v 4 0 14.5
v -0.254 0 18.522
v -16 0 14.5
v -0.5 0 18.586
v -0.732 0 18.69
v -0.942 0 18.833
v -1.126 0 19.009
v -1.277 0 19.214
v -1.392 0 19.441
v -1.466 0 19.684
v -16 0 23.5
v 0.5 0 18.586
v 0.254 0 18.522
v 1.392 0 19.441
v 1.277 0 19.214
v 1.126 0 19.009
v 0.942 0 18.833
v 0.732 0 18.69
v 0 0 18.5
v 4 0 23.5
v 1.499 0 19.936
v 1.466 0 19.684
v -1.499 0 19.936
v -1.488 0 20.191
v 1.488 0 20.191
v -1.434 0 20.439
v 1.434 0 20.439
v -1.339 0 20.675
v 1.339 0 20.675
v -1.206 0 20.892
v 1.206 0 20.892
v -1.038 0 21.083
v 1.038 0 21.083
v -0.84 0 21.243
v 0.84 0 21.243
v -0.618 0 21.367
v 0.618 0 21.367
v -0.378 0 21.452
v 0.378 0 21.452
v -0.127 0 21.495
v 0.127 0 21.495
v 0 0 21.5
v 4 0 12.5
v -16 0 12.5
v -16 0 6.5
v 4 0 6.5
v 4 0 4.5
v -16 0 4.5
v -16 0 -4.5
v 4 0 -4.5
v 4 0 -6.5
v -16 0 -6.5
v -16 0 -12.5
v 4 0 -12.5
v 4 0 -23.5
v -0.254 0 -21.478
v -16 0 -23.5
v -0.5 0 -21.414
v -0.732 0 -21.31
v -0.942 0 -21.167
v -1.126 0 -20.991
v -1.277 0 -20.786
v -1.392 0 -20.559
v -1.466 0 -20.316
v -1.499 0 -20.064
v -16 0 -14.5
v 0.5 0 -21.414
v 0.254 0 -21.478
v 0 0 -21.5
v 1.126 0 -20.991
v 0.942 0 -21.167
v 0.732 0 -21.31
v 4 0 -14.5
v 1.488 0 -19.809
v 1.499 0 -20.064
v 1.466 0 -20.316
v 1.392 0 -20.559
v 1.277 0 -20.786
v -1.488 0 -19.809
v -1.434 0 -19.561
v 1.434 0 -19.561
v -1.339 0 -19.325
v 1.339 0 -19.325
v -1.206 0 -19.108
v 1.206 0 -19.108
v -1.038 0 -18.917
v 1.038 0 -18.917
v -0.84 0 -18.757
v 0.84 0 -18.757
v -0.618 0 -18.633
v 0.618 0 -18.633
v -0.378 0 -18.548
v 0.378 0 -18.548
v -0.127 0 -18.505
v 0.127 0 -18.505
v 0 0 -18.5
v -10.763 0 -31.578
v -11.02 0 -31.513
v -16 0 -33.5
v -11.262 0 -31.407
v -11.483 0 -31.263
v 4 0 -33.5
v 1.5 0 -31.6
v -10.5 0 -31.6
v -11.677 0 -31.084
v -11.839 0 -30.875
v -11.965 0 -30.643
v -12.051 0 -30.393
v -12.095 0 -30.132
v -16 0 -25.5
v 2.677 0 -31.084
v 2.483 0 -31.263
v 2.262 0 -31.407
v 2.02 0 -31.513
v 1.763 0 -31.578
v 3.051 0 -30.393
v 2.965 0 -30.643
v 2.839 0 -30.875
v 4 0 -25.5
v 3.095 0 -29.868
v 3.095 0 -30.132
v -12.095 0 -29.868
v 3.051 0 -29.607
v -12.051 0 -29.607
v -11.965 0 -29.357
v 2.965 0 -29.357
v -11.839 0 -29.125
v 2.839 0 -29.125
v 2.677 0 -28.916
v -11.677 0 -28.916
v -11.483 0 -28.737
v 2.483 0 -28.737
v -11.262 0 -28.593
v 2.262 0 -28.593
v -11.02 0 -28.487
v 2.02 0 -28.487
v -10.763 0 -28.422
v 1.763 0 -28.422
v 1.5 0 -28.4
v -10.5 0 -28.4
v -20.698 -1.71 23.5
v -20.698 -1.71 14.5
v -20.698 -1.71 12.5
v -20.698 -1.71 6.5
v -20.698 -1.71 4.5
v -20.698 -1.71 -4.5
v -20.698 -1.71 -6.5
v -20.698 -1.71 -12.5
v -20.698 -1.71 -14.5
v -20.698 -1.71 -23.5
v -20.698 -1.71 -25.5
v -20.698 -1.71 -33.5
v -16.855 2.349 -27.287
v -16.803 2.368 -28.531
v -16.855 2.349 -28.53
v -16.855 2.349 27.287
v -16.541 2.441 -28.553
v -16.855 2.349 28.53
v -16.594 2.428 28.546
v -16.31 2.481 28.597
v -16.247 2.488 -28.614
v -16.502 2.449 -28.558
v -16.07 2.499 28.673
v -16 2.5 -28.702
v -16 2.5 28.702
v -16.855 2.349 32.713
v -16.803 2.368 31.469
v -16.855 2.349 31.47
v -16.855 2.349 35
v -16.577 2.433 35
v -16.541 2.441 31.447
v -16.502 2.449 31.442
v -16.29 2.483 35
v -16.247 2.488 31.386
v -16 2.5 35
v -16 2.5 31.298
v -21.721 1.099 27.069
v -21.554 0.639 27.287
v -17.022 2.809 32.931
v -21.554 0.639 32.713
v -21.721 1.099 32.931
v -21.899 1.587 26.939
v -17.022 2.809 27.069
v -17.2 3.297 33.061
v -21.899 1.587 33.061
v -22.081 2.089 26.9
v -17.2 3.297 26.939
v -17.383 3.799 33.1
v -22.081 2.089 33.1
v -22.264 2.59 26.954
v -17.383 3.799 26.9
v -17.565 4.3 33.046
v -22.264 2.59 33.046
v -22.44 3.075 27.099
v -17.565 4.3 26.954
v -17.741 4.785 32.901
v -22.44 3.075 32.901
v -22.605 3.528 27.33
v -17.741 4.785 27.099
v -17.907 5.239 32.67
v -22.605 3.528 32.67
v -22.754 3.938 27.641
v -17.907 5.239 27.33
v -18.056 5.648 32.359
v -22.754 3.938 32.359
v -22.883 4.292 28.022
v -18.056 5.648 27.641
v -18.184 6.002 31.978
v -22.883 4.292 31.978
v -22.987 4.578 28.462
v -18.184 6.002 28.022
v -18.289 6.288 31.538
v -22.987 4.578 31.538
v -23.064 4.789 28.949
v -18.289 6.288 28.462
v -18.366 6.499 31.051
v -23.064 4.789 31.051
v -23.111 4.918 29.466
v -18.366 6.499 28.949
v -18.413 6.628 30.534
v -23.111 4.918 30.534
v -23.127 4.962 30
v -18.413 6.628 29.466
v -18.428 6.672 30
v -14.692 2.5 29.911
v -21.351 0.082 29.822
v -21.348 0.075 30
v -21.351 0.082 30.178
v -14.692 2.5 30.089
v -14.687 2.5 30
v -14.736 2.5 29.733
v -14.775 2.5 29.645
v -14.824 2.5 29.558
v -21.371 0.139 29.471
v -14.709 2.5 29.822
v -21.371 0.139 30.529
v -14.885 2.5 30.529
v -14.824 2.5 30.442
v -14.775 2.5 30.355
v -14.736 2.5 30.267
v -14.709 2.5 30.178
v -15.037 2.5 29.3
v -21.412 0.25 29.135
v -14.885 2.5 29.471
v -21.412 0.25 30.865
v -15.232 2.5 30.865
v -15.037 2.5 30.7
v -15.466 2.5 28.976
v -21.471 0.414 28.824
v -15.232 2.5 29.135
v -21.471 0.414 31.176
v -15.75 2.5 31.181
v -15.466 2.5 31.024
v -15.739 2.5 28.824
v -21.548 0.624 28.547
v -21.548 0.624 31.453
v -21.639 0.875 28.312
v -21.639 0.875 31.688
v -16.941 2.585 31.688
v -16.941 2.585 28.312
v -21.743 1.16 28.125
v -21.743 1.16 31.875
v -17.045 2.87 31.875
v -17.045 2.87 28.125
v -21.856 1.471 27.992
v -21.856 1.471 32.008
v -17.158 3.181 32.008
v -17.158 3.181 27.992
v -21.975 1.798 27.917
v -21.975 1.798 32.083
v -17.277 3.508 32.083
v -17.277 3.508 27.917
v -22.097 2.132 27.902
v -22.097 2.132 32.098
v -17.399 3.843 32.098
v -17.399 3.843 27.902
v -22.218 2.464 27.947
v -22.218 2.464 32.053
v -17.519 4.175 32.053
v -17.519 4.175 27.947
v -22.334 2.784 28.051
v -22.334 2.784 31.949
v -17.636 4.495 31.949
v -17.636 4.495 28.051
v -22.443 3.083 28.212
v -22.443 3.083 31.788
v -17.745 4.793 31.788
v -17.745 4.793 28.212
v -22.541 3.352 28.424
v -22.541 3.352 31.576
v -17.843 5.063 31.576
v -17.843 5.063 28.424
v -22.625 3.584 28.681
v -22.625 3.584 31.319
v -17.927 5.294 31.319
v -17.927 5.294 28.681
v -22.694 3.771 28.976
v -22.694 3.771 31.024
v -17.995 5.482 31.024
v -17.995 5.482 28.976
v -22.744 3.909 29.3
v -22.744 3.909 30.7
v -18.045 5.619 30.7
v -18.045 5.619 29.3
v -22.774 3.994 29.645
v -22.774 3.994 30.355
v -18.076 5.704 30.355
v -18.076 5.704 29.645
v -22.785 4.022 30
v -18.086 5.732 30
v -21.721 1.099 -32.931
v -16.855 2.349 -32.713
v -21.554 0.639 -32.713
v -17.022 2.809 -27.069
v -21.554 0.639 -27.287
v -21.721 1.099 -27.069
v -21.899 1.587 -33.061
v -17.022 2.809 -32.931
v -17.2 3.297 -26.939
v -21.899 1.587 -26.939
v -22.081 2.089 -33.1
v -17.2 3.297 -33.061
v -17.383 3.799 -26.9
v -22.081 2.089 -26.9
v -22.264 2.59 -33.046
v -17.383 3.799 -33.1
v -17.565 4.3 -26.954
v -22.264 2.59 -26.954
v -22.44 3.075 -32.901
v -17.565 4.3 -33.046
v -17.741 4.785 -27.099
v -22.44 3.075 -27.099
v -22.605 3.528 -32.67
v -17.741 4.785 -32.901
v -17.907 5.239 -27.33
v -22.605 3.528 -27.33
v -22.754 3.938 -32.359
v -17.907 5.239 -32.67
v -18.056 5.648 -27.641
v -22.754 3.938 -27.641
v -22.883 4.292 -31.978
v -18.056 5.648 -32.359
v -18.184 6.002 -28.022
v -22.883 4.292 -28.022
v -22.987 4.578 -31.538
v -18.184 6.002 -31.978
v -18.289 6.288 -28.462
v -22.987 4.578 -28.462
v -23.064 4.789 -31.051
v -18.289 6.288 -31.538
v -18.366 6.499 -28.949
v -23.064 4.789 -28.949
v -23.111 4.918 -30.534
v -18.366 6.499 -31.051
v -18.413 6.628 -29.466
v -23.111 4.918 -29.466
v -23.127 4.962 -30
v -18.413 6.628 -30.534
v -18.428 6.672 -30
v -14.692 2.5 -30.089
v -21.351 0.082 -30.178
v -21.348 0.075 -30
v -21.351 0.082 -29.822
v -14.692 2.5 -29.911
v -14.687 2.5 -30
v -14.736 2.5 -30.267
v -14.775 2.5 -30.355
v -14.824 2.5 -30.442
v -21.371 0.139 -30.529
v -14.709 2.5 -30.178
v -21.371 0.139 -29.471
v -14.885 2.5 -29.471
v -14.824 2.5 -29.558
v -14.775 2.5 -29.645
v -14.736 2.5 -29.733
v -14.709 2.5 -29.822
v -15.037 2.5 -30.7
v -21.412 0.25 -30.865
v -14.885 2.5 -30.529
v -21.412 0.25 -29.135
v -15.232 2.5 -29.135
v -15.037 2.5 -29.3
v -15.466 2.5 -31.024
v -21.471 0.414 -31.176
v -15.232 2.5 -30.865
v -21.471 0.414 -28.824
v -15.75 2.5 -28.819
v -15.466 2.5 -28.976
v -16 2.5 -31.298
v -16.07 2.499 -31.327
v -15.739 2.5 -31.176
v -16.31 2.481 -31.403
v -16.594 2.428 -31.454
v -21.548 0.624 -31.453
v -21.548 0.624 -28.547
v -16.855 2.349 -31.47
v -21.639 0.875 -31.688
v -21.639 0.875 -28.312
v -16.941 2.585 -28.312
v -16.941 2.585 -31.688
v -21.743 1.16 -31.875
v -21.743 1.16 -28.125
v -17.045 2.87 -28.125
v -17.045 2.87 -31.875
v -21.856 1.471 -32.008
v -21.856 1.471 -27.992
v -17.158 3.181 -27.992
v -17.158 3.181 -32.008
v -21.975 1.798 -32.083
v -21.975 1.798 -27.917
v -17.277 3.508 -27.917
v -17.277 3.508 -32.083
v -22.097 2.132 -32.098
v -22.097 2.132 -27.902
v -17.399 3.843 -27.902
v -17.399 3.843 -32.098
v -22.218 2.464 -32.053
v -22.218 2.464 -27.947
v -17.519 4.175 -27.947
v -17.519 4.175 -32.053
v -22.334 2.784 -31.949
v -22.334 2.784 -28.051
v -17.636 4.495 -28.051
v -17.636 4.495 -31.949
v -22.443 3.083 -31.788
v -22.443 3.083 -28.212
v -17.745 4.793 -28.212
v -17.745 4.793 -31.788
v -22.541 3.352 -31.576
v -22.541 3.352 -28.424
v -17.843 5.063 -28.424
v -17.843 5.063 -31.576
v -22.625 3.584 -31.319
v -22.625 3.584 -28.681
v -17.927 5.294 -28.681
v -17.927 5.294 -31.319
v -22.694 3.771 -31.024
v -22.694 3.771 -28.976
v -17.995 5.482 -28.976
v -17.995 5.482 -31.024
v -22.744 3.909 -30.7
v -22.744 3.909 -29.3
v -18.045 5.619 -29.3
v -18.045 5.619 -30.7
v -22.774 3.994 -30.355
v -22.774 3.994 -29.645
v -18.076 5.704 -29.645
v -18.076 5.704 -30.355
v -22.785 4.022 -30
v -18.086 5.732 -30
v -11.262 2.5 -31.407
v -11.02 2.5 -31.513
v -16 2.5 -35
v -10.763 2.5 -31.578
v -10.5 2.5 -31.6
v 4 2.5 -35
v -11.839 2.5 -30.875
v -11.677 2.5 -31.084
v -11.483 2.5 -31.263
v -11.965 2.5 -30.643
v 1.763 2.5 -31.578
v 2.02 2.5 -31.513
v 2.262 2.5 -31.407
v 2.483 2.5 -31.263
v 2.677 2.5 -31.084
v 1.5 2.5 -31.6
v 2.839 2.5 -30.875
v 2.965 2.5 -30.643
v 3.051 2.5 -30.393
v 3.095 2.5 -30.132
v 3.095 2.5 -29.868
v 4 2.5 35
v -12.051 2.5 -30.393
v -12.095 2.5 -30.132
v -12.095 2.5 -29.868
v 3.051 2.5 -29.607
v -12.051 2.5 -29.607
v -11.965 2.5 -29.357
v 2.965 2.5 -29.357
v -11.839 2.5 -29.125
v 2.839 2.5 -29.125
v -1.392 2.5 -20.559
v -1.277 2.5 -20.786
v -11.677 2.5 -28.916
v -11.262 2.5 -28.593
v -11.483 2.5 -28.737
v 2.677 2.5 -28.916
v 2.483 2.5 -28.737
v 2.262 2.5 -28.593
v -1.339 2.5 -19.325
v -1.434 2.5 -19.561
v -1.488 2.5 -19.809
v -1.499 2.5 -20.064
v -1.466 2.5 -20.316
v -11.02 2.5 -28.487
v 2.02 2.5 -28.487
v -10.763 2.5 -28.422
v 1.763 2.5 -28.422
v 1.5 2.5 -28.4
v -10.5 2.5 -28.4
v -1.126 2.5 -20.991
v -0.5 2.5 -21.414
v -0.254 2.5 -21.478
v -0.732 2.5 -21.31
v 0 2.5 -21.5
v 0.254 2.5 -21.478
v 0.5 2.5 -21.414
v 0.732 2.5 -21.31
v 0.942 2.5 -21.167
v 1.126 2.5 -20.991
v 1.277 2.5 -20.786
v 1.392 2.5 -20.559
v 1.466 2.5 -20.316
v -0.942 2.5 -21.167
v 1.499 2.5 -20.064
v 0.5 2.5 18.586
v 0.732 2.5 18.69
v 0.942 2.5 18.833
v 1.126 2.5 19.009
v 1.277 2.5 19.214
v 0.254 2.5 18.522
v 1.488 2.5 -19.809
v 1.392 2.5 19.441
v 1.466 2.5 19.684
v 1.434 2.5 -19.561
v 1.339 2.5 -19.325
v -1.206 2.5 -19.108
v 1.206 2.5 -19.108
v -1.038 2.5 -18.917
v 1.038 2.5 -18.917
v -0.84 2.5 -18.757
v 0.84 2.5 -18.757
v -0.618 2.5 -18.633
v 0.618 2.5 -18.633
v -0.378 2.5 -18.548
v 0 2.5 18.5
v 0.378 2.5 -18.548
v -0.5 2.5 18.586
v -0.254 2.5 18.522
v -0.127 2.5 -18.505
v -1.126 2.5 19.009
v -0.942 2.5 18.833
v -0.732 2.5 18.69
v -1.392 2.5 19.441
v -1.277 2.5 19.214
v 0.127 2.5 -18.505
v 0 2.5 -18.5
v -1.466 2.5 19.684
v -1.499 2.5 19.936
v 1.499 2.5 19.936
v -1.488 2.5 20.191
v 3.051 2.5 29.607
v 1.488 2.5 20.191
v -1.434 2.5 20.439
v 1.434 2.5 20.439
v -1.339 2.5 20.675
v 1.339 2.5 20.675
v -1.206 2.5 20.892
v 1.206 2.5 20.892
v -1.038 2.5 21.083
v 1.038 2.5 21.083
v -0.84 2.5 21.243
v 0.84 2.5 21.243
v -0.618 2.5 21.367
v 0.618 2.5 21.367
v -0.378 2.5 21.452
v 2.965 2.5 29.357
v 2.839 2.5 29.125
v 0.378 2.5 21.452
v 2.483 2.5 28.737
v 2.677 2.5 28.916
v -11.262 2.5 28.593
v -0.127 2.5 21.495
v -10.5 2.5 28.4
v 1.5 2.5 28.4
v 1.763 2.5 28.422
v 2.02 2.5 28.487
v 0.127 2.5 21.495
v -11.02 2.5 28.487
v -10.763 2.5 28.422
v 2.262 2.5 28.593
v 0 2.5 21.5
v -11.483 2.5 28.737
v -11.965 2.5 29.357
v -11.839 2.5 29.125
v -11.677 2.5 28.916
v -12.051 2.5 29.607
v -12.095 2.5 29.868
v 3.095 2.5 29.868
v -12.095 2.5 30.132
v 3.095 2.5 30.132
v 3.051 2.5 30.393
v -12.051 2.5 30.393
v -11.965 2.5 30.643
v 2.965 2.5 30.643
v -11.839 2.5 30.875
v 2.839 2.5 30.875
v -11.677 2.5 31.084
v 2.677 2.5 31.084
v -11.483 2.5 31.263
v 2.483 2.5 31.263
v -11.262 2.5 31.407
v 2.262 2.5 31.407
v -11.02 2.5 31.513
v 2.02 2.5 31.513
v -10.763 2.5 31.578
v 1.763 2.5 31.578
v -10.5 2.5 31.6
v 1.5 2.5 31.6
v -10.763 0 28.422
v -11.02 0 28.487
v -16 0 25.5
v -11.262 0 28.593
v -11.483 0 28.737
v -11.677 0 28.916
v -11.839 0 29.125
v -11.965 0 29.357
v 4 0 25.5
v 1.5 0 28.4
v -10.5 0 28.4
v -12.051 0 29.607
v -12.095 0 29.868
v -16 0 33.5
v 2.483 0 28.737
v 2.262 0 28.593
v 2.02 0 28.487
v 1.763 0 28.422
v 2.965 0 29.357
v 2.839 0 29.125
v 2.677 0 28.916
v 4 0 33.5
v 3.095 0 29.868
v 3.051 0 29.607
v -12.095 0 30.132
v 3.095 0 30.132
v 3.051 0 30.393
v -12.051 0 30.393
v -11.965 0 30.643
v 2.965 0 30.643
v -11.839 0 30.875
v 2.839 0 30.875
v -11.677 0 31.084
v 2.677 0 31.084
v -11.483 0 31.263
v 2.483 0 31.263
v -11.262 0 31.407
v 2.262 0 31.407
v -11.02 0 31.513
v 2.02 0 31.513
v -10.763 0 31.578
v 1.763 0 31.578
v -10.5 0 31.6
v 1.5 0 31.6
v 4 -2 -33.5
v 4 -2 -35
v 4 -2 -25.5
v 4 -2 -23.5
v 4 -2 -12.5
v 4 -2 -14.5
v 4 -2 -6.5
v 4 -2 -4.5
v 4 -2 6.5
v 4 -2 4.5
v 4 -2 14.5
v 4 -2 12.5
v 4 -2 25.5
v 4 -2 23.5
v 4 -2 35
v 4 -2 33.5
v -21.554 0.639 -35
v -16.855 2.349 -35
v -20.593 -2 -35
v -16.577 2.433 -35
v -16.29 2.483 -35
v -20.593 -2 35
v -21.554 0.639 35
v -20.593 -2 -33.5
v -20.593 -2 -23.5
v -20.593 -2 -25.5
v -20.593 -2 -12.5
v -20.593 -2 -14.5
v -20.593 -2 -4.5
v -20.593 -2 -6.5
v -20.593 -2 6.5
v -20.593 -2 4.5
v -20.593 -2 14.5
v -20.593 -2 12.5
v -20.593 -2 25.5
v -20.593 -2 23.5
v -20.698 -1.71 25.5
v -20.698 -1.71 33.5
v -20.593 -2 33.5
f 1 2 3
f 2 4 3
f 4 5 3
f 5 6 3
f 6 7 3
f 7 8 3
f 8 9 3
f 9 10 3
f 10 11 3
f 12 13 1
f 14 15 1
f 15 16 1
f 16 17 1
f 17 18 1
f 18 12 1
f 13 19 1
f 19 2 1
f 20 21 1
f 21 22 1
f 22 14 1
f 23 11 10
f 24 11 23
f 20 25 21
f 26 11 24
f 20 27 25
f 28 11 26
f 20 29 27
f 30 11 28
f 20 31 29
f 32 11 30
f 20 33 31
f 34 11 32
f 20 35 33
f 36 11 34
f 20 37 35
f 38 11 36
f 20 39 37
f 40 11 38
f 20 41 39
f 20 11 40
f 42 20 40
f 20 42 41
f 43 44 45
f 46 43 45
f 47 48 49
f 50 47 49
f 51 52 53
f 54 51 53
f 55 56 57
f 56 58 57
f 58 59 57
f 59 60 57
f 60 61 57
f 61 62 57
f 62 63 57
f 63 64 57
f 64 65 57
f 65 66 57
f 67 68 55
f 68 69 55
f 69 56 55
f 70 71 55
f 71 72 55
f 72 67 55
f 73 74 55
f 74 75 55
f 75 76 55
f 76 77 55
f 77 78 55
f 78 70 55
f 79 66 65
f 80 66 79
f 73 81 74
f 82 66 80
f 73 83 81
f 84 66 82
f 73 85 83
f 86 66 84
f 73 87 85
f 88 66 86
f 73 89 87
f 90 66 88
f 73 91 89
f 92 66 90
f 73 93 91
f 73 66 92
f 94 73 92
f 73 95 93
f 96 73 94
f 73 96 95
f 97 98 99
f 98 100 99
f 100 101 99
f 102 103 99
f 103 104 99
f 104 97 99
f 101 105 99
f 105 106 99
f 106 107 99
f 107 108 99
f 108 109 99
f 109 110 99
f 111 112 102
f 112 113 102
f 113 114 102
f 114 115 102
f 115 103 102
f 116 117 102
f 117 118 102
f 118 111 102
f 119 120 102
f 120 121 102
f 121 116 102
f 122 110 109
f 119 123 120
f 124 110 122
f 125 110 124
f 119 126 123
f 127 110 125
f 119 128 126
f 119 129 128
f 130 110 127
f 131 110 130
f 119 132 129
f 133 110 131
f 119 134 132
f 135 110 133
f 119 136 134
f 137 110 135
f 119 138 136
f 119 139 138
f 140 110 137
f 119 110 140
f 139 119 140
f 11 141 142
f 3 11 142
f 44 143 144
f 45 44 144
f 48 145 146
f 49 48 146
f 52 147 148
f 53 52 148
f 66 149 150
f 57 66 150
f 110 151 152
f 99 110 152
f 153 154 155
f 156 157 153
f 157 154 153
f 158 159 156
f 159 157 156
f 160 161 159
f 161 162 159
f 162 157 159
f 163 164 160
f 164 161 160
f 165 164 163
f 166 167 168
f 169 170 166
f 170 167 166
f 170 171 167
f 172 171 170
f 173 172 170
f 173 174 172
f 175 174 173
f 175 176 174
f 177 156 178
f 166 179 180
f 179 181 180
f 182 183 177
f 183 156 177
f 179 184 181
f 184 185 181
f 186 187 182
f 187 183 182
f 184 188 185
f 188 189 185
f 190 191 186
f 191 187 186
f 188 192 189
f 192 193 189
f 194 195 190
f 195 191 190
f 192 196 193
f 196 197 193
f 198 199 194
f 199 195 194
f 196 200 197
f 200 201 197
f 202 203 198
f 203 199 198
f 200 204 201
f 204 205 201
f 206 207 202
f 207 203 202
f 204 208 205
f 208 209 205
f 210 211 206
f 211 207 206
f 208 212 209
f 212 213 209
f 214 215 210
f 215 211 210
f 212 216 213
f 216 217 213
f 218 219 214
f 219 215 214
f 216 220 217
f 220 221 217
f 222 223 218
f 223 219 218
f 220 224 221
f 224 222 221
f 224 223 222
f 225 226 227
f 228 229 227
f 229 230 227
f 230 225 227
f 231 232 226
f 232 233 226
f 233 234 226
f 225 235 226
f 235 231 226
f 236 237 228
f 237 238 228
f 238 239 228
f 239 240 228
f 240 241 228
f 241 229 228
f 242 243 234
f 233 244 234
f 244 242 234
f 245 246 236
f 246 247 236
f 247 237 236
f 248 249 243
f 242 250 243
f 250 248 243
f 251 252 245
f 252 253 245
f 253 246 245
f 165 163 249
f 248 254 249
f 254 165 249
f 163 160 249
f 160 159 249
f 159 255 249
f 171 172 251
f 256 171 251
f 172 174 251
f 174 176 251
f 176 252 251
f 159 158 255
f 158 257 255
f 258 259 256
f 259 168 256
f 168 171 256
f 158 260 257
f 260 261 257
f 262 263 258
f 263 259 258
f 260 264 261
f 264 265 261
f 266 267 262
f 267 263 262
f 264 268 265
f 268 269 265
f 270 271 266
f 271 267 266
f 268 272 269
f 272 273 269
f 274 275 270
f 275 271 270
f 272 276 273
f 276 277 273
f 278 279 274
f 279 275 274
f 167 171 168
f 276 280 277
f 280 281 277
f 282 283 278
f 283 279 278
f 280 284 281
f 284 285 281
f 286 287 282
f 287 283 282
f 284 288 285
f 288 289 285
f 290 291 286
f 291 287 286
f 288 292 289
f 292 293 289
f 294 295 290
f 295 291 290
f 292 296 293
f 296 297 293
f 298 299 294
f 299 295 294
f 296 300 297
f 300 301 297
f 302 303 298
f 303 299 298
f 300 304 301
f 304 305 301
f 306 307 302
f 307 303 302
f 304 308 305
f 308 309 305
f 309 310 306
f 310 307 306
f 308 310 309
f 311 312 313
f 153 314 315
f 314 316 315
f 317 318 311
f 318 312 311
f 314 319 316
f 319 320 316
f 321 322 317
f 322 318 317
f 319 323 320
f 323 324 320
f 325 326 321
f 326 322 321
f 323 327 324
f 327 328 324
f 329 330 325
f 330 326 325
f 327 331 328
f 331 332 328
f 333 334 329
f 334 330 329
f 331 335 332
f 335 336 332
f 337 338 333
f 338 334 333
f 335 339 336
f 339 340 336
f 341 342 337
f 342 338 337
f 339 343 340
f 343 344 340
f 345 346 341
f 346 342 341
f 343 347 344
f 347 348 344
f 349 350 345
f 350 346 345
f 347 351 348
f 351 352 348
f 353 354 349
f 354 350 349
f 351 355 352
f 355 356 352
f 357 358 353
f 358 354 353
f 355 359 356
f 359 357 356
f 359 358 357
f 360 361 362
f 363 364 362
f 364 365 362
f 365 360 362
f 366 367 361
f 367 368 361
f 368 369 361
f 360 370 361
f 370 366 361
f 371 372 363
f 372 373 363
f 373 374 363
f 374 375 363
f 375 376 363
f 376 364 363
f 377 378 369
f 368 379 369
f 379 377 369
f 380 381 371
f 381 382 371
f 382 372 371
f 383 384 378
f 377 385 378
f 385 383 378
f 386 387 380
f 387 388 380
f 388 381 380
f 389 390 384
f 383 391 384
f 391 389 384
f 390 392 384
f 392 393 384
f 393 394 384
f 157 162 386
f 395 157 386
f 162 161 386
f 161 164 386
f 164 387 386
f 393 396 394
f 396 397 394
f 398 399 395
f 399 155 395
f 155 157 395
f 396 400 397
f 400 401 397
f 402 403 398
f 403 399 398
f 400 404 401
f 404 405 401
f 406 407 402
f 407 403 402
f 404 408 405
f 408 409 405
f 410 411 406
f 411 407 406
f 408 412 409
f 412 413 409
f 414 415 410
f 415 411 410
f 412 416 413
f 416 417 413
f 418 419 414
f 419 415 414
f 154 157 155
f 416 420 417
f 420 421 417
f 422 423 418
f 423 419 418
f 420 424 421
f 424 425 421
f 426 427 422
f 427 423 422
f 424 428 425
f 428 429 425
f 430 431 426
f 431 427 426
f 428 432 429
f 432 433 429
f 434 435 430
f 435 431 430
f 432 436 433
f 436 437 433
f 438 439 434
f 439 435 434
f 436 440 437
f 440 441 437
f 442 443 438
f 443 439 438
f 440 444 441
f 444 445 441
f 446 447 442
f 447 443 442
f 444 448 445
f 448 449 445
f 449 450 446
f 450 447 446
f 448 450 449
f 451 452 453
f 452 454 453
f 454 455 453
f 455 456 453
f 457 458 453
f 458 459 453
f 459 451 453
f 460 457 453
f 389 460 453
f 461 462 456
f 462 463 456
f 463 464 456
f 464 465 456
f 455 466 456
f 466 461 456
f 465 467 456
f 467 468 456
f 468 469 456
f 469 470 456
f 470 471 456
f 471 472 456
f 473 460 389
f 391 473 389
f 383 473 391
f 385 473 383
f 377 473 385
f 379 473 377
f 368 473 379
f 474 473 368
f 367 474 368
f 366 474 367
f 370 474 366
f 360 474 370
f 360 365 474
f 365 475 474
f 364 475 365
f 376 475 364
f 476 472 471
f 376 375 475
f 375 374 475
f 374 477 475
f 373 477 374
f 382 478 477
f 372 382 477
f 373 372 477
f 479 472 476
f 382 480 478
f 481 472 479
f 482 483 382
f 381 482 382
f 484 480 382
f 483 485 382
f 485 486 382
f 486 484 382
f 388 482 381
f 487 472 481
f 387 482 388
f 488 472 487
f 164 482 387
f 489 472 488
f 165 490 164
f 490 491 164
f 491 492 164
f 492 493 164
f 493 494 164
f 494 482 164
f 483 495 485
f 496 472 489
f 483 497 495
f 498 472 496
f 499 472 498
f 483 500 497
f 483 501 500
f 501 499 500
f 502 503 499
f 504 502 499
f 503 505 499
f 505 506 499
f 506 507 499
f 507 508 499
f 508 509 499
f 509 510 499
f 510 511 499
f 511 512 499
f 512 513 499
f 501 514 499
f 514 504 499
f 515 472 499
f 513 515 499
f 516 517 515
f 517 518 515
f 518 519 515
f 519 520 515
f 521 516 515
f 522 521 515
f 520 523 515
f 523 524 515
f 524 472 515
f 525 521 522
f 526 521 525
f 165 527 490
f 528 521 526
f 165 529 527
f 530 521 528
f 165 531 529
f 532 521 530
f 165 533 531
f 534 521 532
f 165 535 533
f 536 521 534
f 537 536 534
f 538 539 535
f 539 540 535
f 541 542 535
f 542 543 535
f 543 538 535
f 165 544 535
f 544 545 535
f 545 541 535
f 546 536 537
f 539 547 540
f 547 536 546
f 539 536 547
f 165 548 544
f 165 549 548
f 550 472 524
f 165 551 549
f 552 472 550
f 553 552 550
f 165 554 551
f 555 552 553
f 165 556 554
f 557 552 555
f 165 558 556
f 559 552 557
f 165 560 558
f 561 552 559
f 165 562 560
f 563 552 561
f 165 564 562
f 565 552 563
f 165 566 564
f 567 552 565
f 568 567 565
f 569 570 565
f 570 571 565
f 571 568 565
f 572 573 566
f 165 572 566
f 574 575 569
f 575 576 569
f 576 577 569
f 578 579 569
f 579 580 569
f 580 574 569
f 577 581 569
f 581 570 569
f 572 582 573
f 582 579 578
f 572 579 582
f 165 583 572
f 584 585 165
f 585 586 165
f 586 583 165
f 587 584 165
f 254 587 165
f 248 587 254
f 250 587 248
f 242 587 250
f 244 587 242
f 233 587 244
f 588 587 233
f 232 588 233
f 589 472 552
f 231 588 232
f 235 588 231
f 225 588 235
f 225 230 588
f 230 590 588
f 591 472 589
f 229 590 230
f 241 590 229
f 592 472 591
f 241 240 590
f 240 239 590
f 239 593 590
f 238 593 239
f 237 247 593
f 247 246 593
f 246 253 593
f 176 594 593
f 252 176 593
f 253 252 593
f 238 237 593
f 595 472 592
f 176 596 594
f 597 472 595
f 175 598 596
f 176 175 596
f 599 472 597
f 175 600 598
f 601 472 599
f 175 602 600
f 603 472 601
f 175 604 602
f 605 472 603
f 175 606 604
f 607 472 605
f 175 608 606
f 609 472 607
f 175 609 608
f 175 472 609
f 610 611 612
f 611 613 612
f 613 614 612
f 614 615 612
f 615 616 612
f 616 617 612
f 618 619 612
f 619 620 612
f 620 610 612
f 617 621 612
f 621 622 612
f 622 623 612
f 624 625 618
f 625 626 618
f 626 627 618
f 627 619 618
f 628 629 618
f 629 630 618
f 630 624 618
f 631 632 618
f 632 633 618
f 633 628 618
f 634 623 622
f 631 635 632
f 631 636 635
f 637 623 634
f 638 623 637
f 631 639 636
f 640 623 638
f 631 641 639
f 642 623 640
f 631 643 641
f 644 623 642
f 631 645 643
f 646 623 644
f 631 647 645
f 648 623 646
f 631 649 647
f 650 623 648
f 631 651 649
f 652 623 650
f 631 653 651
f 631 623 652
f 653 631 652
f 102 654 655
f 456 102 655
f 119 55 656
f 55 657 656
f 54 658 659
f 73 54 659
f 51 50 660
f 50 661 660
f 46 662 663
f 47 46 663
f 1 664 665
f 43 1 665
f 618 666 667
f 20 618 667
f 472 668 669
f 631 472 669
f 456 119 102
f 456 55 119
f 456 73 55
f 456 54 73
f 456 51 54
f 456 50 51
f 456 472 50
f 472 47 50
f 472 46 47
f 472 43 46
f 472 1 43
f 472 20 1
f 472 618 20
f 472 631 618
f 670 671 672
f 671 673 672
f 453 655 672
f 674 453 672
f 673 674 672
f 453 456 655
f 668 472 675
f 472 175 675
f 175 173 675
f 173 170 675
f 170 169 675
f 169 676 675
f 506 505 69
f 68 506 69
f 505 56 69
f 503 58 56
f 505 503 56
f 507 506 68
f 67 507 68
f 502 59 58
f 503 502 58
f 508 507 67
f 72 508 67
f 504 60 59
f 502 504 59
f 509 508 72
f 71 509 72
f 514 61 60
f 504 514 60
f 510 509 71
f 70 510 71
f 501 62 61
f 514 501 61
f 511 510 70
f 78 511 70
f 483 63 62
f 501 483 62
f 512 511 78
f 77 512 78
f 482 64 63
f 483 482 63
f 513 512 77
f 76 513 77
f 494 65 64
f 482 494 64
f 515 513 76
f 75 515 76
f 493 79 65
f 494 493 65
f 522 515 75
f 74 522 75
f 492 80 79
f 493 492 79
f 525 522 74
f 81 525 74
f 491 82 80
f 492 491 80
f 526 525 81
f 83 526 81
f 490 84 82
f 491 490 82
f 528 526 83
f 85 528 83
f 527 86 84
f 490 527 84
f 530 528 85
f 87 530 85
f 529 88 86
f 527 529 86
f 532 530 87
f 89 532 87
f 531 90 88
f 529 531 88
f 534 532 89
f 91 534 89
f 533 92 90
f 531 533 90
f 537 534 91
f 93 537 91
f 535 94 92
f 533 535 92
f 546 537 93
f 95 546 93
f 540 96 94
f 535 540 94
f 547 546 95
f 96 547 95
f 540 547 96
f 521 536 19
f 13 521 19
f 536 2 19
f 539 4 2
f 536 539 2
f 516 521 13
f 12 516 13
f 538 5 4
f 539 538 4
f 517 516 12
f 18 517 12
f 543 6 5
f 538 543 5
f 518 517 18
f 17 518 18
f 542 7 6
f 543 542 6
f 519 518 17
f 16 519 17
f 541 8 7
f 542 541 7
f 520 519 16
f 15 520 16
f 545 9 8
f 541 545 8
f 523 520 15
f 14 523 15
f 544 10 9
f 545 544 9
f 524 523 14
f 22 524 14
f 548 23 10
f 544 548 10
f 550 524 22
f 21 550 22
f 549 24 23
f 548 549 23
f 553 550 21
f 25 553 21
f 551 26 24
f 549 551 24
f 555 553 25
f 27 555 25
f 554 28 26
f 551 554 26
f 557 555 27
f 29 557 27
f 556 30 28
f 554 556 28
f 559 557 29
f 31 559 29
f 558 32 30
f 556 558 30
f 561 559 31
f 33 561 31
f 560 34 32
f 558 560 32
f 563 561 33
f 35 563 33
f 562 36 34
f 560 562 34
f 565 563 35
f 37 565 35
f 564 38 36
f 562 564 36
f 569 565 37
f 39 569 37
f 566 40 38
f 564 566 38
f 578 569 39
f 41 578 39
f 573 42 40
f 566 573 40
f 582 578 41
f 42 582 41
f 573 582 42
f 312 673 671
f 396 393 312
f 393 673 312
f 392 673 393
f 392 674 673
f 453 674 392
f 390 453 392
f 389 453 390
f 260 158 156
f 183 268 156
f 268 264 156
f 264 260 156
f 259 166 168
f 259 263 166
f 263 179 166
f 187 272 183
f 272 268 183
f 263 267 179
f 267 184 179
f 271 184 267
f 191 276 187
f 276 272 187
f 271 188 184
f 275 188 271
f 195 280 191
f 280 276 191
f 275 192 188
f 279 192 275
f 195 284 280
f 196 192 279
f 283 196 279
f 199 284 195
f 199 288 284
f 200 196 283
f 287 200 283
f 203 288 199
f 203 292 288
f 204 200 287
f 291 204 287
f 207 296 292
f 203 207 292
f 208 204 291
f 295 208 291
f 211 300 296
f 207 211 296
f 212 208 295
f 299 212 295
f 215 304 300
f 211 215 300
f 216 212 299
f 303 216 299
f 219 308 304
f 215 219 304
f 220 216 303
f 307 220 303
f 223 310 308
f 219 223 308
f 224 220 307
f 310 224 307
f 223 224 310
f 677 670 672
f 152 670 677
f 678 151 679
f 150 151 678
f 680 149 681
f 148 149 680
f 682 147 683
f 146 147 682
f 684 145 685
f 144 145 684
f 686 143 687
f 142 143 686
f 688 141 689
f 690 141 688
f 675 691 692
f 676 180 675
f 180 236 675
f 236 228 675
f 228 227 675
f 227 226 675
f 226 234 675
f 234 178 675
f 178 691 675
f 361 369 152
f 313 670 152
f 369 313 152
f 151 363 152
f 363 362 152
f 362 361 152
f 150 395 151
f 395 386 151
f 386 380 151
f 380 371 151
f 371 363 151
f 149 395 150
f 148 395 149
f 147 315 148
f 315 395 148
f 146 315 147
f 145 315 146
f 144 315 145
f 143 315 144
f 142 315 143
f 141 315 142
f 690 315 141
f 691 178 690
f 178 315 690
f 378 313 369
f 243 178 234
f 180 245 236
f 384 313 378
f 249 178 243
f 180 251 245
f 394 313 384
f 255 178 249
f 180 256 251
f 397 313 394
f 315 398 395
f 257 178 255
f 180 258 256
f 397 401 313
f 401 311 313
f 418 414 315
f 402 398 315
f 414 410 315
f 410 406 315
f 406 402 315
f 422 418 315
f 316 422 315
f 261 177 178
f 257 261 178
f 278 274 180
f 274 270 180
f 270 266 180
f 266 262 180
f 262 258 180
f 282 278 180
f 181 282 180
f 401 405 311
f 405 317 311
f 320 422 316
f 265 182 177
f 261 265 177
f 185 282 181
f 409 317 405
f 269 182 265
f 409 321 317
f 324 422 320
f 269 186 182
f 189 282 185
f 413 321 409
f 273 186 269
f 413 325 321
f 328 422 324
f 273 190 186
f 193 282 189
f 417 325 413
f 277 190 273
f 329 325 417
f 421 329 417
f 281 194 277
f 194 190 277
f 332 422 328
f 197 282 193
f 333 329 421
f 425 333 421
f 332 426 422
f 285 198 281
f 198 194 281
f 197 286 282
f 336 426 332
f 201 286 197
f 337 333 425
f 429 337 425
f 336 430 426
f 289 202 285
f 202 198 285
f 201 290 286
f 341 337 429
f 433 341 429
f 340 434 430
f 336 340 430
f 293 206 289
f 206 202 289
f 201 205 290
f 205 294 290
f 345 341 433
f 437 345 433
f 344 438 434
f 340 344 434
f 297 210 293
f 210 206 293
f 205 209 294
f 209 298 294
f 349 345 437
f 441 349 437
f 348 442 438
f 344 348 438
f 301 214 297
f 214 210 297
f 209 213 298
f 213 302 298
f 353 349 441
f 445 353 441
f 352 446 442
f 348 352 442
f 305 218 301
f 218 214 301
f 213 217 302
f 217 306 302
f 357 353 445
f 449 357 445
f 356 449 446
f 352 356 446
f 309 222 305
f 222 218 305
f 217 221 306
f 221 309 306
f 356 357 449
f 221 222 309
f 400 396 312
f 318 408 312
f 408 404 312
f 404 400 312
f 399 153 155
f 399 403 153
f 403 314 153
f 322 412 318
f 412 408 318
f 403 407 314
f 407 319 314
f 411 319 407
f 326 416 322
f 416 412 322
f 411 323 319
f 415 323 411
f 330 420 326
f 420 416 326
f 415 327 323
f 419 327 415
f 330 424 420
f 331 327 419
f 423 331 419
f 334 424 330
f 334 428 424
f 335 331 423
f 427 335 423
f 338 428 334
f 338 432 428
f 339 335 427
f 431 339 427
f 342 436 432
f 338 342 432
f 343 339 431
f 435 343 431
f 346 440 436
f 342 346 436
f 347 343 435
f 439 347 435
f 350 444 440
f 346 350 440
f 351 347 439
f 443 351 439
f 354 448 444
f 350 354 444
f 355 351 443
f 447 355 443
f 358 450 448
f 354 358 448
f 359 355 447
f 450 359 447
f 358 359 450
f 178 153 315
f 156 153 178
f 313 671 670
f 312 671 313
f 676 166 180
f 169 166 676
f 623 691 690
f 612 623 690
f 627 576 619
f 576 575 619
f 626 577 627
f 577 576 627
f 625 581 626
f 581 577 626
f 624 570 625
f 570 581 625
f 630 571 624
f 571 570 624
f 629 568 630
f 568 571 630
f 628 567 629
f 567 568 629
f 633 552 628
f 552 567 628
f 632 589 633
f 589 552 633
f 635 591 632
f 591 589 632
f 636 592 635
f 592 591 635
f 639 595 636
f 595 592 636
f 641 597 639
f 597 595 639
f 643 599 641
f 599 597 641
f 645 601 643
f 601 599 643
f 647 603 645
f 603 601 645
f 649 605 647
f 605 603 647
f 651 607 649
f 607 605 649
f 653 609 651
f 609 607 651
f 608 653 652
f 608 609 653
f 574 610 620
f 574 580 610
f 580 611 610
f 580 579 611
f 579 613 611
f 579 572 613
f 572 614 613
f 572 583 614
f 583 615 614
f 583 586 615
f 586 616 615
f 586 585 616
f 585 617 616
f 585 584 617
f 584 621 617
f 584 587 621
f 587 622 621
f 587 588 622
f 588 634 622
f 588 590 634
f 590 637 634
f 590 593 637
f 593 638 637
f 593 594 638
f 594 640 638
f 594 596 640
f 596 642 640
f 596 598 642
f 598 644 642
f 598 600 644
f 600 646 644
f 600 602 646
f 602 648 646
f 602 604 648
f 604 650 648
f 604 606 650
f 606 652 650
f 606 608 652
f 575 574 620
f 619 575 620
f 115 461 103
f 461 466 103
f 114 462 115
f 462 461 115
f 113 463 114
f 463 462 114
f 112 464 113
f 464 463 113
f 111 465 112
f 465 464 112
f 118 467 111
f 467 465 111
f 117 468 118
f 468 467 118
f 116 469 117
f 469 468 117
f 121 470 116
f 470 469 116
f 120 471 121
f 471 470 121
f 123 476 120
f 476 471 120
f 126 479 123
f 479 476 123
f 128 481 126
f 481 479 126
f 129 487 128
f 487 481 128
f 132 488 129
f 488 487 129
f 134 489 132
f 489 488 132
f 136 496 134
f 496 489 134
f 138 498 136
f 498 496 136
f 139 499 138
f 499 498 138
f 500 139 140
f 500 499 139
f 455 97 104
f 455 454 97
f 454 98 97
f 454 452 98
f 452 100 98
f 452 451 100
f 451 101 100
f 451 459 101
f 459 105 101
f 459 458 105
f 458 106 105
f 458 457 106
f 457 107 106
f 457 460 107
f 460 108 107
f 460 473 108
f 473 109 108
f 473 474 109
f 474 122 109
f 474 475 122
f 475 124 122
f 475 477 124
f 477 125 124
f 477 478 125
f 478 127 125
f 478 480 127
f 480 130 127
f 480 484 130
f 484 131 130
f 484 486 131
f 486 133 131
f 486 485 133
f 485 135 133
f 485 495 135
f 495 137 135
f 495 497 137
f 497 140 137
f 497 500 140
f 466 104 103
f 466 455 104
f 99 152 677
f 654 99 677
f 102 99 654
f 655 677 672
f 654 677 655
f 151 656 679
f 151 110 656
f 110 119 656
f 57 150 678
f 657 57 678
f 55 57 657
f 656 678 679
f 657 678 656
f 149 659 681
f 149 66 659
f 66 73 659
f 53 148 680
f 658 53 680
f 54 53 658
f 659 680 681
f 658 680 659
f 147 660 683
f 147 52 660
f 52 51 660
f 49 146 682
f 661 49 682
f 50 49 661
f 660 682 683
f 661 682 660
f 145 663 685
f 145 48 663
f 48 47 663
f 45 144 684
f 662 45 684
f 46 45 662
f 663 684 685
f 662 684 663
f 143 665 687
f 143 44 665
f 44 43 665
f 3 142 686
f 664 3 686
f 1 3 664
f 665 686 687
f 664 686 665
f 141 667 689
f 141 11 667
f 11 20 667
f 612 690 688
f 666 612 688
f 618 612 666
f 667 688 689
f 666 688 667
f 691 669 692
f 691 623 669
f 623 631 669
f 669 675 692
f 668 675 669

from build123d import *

# Parameters (mm, degrees)
SKETCH_1_W          = 8
SKETCH_1_H          = 70
SKETCH_1_R          = 1.5
EXTRUDE_1_DEPTH     = 2.5
SKETCH_4_W          = 70
SKETCH_4_H          = 2.5
EXTRUDE_3_DEPTH     = 12
EXTRUDE_4_DEPTH     = 70
SKETCH_7_R          = 3.1
SKETCH_7_R_2        = 2.1
EXTRUDE_2_DEPTH     = 5
SKETCH_8_W          = 70
SKETCH_8_H          = 2.5
EXTRUDE_5_DEPTH     = 5
CUT_EXTRUDE_1_REACH = 28.076
SKETCH_9_R          = 2.1
CUT_EXTRUDE_2_DEPTH = 10
EXTRUDE_6_REACH     = 29.127
SKETCH_15_W         = 1.5
SKETCH_15_H         = 2
SKETCH_15_W_2       = 2


with BuildPart() as part:
    # 草图1 → 凸台-拉伸1 (new body)
    with BuildSketch(Plane(origin=(0, 0, 0), x_dir=(1, 0, 0), z_dir=(0, 1, 0))):
        Rectangle(SKETCH_1_W, SKETCH_1_H)
        with Locations((0, 30)):
            Circle(SKETCH_1_R, mode=Mode.SUBTRACT)
        with Locations((0, 20)):
            Circle(SKETCH_1_R, mode=Mode.SUBTRACT)
        with Locations((0, -20)):
            Circle(SKETCH_1_R, mode=Mode.SUBTRACT)
        with Locations((0, -30)):
            Circle(SKETCH_1_R, mode=Mode.SUBTRACT)
    extrude(amount=EXTRUDE_1_DEPTH)

    # 草图4 → 凸台-拉伸3 (add)
    with BuildSketch(Plane.ZY.offset(4)):
        with Locations((0, 1.25)):
            Rectangle(SKETCH_4_W, SKETCH_4_H)
    extrude(amount=EXTRUDE_3_DEPTH)

    # 草图6 → 凸台-拉伸4 (add)
    with BuildSketch(Plane.XY.offset(35)):
        with BuildLine():
            Line((-16.855050358, 2.349231552), (-16, 0))
            Line((-16, 0), (-16, 2.5))
            ThreePointArc((-16, 2.5), (-16.434120444, 2.462019383), (-16.855050358, 2.349231552))
        make_face()
    extrude(amount=-EXTRUDE_4_DEPTH)

    # 草图7 → 拉伸-薄壁2 (add)
    with BuildSketch(Plane(origin=(-14.128355545, -5.142300877, 0), x_dir=(0, 0, 1), z_dir=(-0.939692621, -0.342020143, 0))):
        with Locations((30, 9.472322293)):
            Circle(SKETCH_7_R)
        with Locations((30, 9.472322293)):
            Circle(SKETCH_7_R_2, mode=Mode.SUBTRACT)
        with Locations((-30, 9.472322293)):
            Circle(SKETCH_7_R)
        with Locations((-30, 9.472322293)):
            Circle(SKETCH_7_R_2, mode=Mode.SUBTRACT)
    extrude(amount=EXTRUDE_2_DEPTH)

    # 草图8 → 凸台-拉伸5 (add)
    with BuildSketch(Plane(origin=(-14.128355545, -5.142300877, 0), x_dir=(0, 0, 1), z_dir=(-0.939692621, -0.342020143, 0))):
        with Locations((0, 6.722322293)):
            Rectangle(SKETCH_8_W, SKETCH_8_H)
    extrude(amount=EXTRUDE_5_DEPTH)

    # 草图9 → 切除-拉伸1 (cut, up to next)
    with BuildSketch(Plane(origin=(-18.826818649, -6.852401594, 0), x_dir=(0, 0, 1), z_dir=(-0.939692621, -0.342020143, 0)), mode=Mode.PRIVATE) as cut_extrude_1_sk1:
        with Locations((-30, 9.472322293)):
            Circle(SKETCH_9_R)
    cut_extrude_1_tool1 = extrude(cut_extrude_1_sk1.sketch, amount=-CUT_EXTRUDE_1_REACH, mode=Mode.PRIVATE) & part.part
    add(cut_extrude_1_tool1.solids().sort_by_distance((-22.066544, 2.04867, -30))[0], mode=Mode.SUBTRACT)
    # 草图9 → 切除-拉伸1 (cut, up to next)
    with BuildSketch(Plane(origin=(-18.826818649, -6.852401594, 0), x_dir=(0, 0, 1), z_dir=(-0.939692621, -0.342020143, 0)), mode=Mode.PRIVATE) as cut_extrude_1_sk2:
        with Locations((30, 9.472322293)):
            Circle(SKETCH_9_R)
    cut_extrude_1_tool2 = extrude(cut_extrude_1_sk2.sketch, amount=-CUT_EXTRUDE_1_REACH, mode=Mode.PRIVATE) & part.part
    add(cut_extrude_1_tool2.solids().sort_by_distance((-22.066544, 2.04867, 30))[0], mode=Mode.SUBTRACT)

    # 草图11 → 切除-拉伸2 (cut)
    with BuildSketch(Plane(origin=(0, 2.5, 0), x_dir=(1, 0, 0), z_dir=(0, 1, 0))):
        with BuildLine():
            Line((1.500000061, 28.40000046), (-10.499999939, 28.4))
            ThreePointArc((-10.499999939, 28.4), (-12.1, 29.999999939), (-10.500000061, 31.6))
            Line((-10.500000061, 31.6), (1.499999939, 31.60000046))
            ThreePointArc((1.499999939, 31.60000046), (3.1, 30.000000521), (1.500000061, 28.40000046))
        make_face()
        with BuildLine():
            Line((1.500000061, -31.59999977), (-10.499999939, -31.60000023))
            ThreePointArc((-10.499999939, -31.60000023), (-12.1, -30.000000291), (-10.500000061, -28.40000023))
            Line((-10.500000061, -28.40000023), (1.499999939, -28.39999977))
            ThreePointArc((1.499999939, -28.39999977), (3.1, -29.999999709), (1.500000061, -31.59999977))
        make_face()
    extrude(amount=-CUT_EXTRUDE_2_DEPTH, mode=Mode.SUBTRACT)

    # 凸台-拉伸6: up to this face of the body (flat: up to its plane)
    extrude_6_end = Plane(part.part.faces().sort_by_distance((-21.270490347, -0.138468784, 0))[0])
    # 草图15 → 凸台-拉伸6 (add, up to the picked face)
    with BuildSketch(Plane(origin=(4, 0, 0), x_dir=(0, 0, -1), z_dir=(1, 0, 0)), mode=Mode.PRIVATE) as extrude_6_sk1:
        with Locations((-34.25, -1)):
            Rectangle(SKETCH_15_W, SKETCH_15_H)
    extrude_6_tool1 = split(extrude(extrude_6_sk1.sketch, amount=-EXTRUDE_6_REACH, mode=Mode.PRIVATE), bisect_by=extrude_6_end, keep=Keep.BOTH, mode=Mode.PRIVATE)
    add(extrude_6_tool1.solids().sort_by_distance((4, -1, 34.25))[0])
    # 草图15 → 凸台-拉伸6 (add, up to the picked face)
    with BuildSketch(Plane(origin=(4, 0, 0), x_dir=(0, 0, -1), z_dir=(1, 0, 0)), mode=Mode.PRIVATE) as extrude_6_sk2:
        with Locations((-24.5, -1)):
            Rectangle(SKETCH_15_W_2, SKETCH_15_H)
    extrude_6_tool2 = split(extrude(extrude_6_sk2.sketch, amount=-EXTRUDE_6_REACH, mode=Mode.PRIVATE), bisect_by=extrude_6_end, keep=Keep.BOTH, mode=Mode.PRIVATE)
    add(extrude_6_tool2.solids().sort_by_distance((4, -1, 24.5))[0])
    # 草图15 → 凸台-拉伸6 (add, up to the picked face)
    with BuildSketch(Plane(origin=(4, 0, 0), x_dir=(0, 0, -1), z_dir=(1, 0, 0)), mode=Mode.PRIVATE) as extrude_6_sk3:
        with Locations((-13.5, -1)):
            Rectangle(SKETCH_15_W_2, SKETCH_15_H)
    extrude_6_tool3 = split(extrude(extrude_6_sk3.sketch, amount=-EXTRUDE_6_REACH, mode=Mode.PRIVATE), bisect_by=extrude_6_end, keep=Keep.BOTH, mode=Mode.PRIVATE)
    add(extrude_6_tool3.solids().sort_by_distance((4, -1, 13.5))[0])
    # 草图15 → 凸台-拉伸6 (add, up to the picked face)
    with BuildSketch(Plane(origin=(4, 0, 0), x_dir=(0, 0, -1), z_dir=(1, 0, 0)), mode=Mode.PRIVATE) as extrude_6_sk4:
        with Locations((-5.5, -1)):
            Rectangle(SKETCH_15_W_2, SKETCH_15_H)
    extrude_6_tool4 = split(extrude(extrude_6_sk4.sketch, amount=-EXTRUDE_6_REACH, mode=Mode.PRIVATE), bisect_by=extrude_6_end, keep=Keep.BOTH, mode=Mode.PRIVATE)
    add(extrude_6_tool4.solids().sort_by_distance((4, -1, 5.5))[0])
    # 草图15 → 凸台-拉伸6 (add, up to the picked face)
    with BuildSketch(Plane(origin=(4, 0, 0), x_dir=(0, 0, -1), z_dir=(1, 0, 0)), mode=Mode.PRIVATE) as extrude_6_sk5:
        with Locations((5.5, -1)):
            Rectangle(SKETCH_15_W_2, SKETCH_15_H)
    extrude_6_tool5 = split(extrude(extrude_6_sk5.sketch, amount=-EXTRUDE_6_REACH, mode=Mode.PRIVATE), bisect_by=extrude_6_end, keep=Keep.BOTH, mode=Mode.PRIVATE)
    add(extrude_6_tool5.solids().sort_by_distance((4, -1, -5.5))[0])
    # 草图15 → 凸台-拉伸6 (add, up to the picked face)
    with BuildSketch(Plane(origin=(4, 0, 0), x_dir=(0, 0, -1), z_dir=(1, 0, 0)), mode=Mode.PRIVATE) as extrude_6_sk6:
        with Locations((13.5, -1)):
            Rectangle(SKETCH_15_W_2, SKETCH_15_H)
    extrude_6_tool6 = split(extrude(extrude_6_sk6.sketch, amount=-EXTRUDE_6_REACH, mode=Mode.PRIVATE), bisect_by=extrude_6_end, keep=Keep.BOTH, mode=Mode.PRIVATE)
    add(extrude_6_tool6.solids().sort_by_distance((4, -1, -13.5))[0])
    # 草图15 → 凸台-拉伸6 (add, up to the picked face)
    with BuildSketch(Plane(origin=(4, 0, 0), x_dir=(0, 0, -1), z_dir=(1, 0, 0)), mode=Mode.PRIVATE) as extrude_6_sk7:
        with Locations((34.25, -1)):
            Rectangle(SKETCH_15_W, SKETCH_15_H)
    extrude_6_tool7 = split(extrude(extrude_6_sk7.sketch, amount=-EXTRUDE_6_REACH, mode=Mode.PRIVATE), bisect_by=extrude_6_end, keep=Keep.BOTH, mode=Mode.PRIVATE)
    add(extrude_6_tool7.solids().sort_by_distance((4, -1, -34.25))[0])
    # 草图15 → 凸台-拉伸6 (add, up to the picked face)
    with BuildSketch(Plane(origin=(4, 0, 0), x_dir=(0, 0, -1), z_dir=(1, 0, 0)), mode=Mode.PRIVATE) as extrude_6_sk8:
        with Locations((24.5, -1)):
            Rectangle(SKETCH_15_W_2, SKETCH_15_H)
    extrude_6_tool8 = split(extrude(extrude_6_sk8.sketch, amount=-EXTRUDE_6_REACH, mode=Mode.PRIVATE), bisect_by=extrude_6_end, keep=Keep.BOTH, mode=Mode.PRIVATE)
    add(extrude_6_tool8.solids().sort_by_distance((4, -1, -24.5))[0])


solid = part.part
